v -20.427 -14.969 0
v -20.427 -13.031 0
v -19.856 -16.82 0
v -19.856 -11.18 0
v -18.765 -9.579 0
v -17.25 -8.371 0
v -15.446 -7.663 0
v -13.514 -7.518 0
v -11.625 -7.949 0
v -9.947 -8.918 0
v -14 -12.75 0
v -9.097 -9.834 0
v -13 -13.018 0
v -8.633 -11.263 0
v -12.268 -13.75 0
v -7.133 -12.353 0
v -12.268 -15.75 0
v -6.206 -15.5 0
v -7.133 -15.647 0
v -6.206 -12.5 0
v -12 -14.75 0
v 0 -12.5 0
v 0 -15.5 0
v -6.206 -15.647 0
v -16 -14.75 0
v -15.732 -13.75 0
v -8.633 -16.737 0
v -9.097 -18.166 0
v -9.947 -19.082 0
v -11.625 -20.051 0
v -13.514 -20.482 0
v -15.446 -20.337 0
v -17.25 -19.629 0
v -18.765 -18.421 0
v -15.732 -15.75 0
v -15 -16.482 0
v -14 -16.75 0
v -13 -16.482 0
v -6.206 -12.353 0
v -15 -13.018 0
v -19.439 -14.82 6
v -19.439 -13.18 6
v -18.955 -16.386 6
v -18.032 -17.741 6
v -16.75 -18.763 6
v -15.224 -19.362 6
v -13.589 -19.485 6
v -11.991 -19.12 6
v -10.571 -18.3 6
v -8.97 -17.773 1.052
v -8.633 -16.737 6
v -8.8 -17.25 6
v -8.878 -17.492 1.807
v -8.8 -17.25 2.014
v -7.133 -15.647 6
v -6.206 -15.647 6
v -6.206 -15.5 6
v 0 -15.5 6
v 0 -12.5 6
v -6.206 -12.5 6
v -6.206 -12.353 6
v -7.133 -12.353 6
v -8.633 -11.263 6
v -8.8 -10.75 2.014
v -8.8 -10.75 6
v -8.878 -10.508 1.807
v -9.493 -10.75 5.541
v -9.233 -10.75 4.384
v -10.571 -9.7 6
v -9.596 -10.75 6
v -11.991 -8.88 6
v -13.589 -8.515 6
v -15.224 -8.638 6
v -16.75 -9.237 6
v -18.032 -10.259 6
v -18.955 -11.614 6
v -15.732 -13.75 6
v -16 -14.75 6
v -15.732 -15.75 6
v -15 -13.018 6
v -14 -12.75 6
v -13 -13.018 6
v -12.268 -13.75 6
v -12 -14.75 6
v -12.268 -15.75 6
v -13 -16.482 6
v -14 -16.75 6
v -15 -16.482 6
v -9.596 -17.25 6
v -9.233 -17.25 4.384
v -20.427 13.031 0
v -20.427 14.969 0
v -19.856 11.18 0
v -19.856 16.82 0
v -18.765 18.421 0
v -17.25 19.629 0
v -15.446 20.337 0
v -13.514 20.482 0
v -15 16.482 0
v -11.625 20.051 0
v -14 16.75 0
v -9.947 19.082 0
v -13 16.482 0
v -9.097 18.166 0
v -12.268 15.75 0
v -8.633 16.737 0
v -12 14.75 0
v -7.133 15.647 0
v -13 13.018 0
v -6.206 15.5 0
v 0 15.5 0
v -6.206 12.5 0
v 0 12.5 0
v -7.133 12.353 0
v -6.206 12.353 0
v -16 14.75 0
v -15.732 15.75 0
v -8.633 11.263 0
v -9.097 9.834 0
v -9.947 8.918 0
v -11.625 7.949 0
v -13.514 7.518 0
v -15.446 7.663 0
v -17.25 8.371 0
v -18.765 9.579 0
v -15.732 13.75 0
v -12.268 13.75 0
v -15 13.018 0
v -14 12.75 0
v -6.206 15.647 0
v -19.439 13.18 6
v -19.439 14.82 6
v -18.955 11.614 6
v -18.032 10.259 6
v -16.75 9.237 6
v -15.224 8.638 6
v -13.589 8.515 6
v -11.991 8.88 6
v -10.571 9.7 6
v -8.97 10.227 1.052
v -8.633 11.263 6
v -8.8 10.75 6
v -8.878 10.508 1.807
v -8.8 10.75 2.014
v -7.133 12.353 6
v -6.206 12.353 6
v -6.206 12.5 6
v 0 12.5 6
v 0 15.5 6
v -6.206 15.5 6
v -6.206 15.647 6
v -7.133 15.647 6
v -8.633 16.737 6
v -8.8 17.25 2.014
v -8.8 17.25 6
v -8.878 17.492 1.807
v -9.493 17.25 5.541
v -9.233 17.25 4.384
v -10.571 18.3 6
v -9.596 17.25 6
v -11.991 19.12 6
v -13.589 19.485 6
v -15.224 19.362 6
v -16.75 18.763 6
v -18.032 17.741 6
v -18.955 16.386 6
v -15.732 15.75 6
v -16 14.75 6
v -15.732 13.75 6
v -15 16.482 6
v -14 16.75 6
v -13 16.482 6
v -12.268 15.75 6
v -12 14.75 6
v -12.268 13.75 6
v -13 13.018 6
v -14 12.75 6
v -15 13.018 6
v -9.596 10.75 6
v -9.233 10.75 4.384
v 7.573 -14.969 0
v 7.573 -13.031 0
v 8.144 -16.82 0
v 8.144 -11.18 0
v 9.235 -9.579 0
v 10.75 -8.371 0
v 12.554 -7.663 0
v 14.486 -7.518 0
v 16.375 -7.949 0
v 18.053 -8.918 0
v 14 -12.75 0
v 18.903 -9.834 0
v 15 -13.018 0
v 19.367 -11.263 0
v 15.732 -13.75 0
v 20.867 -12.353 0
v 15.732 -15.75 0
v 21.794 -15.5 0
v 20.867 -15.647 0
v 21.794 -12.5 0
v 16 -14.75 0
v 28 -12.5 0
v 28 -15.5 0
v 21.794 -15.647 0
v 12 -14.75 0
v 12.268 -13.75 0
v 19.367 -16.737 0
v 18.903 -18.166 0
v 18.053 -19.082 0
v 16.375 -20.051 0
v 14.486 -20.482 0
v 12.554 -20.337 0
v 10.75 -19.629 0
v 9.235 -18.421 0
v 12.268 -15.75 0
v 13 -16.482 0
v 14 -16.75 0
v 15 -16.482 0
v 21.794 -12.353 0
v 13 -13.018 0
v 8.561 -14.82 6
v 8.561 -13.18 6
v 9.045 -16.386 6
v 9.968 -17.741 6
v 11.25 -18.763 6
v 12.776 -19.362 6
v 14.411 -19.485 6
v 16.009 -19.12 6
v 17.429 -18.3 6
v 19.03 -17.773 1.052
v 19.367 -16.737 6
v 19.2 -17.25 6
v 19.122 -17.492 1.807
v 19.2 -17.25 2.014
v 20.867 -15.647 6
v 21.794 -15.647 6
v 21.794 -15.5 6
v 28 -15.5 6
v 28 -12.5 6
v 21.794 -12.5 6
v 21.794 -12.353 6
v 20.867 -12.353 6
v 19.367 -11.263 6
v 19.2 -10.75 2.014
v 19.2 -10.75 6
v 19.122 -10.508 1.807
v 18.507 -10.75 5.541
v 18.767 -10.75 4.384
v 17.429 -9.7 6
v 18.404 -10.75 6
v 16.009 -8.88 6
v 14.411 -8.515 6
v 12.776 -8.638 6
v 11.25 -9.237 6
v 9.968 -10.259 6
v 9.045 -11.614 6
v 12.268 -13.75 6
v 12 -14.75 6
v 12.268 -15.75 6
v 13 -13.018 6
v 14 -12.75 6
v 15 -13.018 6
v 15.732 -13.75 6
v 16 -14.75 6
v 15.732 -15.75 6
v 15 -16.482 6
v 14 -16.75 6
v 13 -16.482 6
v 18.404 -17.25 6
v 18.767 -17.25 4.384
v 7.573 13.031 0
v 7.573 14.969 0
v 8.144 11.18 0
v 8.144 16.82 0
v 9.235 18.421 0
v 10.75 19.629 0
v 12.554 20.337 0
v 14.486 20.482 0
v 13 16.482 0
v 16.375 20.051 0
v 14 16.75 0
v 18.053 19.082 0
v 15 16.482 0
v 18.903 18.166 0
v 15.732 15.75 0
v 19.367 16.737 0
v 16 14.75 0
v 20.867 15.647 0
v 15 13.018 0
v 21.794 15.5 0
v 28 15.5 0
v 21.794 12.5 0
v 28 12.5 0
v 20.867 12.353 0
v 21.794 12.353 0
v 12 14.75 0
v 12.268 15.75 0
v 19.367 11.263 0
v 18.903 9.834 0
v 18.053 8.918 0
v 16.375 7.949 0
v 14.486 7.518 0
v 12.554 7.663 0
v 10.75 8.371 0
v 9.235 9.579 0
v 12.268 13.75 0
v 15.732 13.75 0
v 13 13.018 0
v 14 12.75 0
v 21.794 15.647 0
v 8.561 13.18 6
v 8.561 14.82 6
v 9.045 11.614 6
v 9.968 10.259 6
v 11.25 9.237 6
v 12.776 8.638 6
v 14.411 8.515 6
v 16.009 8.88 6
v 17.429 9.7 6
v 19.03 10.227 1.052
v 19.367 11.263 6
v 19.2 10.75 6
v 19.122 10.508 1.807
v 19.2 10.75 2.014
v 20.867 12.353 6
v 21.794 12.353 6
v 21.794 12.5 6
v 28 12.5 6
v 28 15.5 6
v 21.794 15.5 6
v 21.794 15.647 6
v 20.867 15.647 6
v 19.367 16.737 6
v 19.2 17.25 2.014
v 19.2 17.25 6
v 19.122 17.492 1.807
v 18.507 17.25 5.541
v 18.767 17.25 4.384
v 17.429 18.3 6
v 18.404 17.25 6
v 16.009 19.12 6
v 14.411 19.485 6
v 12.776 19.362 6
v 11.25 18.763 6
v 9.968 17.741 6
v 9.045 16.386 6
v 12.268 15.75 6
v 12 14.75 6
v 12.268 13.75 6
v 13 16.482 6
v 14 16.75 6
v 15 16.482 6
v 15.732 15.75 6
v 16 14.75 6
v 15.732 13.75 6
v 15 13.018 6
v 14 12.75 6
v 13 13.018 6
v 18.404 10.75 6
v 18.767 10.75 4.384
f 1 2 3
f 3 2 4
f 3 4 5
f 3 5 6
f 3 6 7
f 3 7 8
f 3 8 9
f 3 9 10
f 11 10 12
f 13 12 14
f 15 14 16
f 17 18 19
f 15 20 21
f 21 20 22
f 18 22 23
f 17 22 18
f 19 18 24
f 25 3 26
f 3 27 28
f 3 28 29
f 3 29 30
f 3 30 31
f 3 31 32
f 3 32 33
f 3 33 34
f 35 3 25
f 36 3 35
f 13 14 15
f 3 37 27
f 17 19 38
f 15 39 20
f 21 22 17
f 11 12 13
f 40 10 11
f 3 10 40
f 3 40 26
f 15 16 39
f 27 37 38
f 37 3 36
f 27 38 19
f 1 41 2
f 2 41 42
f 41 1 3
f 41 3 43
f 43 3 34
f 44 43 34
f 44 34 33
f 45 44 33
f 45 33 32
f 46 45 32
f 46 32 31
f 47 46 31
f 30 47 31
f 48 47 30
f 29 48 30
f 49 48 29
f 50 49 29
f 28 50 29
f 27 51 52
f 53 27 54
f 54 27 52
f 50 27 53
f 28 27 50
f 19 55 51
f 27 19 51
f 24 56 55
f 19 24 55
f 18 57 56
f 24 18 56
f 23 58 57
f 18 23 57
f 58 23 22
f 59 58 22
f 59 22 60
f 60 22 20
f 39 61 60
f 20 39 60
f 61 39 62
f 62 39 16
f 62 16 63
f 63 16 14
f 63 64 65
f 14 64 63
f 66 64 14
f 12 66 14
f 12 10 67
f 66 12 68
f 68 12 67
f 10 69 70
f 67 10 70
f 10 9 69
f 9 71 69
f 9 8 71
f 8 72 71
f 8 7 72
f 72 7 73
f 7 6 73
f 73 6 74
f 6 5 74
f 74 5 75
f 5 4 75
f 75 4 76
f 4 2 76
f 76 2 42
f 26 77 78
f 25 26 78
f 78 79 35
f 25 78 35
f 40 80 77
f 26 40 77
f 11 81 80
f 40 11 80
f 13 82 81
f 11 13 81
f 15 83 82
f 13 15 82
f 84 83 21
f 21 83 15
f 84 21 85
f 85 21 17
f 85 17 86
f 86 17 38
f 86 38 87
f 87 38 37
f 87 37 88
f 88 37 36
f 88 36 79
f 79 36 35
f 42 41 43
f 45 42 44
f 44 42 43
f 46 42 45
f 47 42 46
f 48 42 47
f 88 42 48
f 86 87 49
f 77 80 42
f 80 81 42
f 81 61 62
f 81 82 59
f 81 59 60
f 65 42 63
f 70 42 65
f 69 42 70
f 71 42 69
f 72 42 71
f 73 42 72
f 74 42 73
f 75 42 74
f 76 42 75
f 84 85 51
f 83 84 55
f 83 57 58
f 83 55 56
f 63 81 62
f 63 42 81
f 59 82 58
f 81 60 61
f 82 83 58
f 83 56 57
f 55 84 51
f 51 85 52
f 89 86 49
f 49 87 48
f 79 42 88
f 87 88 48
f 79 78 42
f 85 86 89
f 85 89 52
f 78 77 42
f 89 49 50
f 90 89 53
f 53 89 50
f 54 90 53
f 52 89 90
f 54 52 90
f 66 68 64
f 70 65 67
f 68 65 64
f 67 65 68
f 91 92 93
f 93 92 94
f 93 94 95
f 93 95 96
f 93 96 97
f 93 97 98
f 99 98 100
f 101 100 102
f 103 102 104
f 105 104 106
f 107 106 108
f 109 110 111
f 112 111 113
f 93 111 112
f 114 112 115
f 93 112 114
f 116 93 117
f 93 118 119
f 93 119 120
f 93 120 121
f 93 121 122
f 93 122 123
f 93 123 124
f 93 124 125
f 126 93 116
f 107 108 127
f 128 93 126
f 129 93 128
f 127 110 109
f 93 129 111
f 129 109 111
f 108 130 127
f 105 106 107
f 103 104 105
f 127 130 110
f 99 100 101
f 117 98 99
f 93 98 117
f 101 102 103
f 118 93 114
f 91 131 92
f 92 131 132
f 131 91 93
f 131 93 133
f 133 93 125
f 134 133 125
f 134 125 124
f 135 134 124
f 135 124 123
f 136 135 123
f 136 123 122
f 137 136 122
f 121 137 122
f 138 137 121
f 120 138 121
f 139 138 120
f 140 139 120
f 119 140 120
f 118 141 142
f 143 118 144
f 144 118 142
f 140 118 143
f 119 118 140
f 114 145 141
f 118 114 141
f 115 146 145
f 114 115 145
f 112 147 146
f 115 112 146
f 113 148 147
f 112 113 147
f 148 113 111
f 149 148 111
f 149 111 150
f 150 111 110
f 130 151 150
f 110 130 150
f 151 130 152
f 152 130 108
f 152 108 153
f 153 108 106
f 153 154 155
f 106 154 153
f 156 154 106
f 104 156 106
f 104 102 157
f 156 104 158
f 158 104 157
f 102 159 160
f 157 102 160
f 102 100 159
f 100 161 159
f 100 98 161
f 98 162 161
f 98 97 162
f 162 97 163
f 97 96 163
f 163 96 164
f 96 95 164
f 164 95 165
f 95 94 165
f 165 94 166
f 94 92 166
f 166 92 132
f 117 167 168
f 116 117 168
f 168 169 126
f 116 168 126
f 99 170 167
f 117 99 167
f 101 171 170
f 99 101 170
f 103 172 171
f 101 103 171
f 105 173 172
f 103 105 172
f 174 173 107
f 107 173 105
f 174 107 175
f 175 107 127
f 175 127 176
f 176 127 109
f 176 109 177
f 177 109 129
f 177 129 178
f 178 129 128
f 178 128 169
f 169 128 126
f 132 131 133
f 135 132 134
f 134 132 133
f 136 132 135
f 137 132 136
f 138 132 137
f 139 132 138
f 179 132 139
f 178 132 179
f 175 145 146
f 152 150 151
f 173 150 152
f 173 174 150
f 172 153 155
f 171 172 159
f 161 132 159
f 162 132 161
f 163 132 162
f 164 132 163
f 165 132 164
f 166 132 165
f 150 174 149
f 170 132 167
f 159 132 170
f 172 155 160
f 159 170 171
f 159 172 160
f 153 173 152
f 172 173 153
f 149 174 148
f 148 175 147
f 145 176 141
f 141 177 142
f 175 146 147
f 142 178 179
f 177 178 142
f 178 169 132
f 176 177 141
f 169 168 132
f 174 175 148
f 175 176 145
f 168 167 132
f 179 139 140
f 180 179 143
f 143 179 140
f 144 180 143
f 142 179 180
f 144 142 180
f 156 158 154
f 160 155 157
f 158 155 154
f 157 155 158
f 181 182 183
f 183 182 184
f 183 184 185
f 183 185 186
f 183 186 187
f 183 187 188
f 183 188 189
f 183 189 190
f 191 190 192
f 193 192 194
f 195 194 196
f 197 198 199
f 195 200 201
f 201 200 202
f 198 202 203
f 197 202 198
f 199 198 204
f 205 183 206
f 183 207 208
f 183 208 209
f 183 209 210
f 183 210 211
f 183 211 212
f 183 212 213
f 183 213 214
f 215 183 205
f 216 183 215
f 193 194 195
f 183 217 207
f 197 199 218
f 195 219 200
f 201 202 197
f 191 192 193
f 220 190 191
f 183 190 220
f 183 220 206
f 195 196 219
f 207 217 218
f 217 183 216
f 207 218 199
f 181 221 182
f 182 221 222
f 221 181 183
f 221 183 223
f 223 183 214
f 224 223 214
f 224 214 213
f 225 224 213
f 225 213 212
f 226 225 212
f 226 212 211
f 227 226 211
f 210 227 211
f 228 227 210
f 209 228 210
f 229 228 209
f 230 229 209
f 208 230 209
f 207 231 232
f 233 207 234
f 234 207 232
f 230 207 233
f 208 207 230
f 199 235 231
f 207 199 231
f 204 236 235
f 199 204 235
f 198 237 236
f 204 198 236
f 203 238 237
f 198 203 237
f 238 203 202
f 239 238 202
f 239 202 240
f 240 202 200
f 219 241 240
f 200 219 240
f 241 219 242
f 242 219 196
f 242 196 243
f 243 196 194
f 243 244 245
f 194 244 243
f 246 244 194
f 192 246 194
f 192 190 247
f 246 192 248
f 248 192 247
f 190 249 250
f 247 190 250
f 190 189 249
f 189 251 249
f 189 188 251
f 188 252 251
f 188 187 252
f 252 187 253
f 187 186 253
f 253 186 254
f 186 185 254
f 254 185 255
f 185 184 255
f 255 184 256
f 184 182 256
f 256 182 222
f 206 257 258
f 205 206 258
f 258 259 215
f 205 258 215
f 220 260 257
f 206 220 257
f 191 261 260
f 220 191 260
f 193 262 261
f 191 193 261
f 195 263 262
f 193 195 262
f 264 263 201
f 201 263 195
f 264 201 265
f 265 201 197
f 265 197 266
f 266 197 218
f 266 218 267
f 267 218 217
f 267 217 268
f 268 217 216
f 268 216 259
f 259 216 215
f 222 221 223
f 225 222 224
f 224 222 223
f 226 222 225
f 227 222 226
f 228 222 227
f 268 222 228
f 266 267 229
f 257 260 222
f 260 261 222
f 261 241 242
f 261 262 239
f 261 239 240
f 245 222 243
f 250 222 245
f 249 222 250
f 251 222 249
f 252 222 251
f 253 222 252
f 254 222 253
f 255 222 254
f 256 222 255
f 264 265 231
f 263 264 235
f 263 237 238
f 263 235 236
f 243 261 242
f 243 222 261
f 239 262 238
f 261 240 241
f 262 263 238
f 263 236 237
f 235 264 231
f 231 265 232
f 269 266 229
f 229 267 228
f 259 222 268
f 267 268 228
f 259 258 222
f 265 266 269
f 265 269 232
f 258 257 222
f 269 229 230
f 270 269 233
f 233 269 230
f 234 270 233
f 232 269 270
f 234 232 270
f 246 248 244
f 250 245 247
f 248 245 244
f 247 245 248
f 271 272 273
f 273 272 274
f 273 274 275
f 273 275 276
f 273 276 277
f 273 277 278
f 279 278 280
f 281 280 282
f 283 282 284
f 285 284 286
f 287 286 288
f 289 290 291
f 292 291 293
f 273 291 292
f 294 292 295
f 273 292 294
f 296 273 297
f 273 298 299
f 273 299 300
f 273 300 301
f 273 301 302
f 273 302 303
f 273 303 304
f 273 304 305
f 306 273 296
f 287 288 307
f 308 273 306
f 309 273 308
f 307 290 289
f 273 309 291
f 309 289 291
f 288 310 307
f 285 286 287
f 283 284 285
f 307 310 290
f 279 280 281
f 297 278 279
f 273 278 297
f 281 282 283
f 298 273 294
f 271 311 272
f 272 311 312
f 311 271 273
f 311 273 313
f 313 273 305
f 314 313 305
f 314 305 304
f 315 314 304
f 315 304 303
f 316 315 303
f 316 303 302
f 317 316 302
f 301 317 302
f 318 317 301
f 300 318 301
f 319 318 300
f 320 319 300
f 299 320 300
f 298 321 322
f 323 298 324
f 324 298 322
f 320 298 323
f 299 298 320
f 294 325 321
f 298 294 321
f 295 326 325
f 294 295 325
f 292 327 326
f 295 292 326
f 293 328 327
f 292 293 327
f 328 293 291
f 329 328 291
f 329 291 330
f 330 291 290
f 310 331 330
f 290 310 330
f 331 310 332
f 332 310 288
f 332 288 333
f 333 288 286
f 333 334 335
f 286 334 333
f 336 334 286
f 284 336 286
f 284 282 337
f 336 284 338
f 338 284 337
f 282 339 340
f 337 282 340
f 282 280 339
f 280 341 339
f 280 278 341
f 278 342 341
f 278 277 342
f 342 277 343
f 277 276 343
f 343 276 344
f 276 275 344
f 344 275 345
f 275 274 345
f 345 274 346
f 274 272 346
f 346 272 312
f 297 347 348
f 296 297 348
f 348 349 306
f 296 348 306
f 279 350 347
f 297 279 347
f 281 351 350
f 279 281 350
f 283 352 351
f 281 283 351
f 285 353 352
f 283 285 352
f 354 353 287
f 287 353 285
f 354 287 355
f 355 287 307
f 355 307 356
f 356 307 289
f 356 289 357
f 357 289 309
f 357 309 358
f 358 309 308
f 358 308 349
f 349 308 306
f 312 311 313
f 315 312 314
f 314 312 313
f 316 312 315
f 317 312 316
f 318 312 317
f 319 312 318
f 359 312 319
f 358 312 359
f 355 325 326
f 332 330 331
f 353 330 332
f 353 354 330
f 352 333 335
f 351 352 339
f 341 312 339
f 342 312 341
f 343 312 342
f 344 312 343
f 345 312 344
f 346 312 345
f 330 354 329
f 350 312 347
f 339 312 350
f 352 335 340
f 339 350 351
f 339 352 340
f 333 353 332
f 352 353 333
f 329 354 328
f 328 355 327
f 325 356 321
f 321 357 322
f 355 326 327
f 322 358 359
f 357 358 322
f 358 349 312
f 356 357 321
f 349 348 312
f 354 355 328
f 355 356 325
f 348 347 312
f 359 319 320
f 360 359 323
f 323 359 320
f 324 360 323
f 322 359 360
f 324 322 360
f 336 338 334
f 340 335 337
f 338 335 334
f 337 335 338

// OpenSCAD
// od1 = Outside diameter at base
// od2 = Outside diameter at top
// id = inside (hole) diameter
// rt = retainer thickness
// ho = hole offset
// ll = lever length
// lt = lever thickness (width)
// d  = delta
module PrintBedRetainer(od1, od2, id, rt, ho, ll, lt, d)
{
    s30 = sin(30);
    c30 = cos(30);
    lfr = (od1+od2)/4-lt;     // Lever fillet radius      
    lfp = (od1+od2)/4+lfr;    // Lever fillet pitch radius
    intersection()
    {
        difference()
        {
            union()
            {
                cylinder(r1=od1/2, r2=od2/2, h=rt);
                translate([0,-od1/4,0]) cube(size=[ll, od1/2, rt]);
            }
                translate([0,ho,-d]) cylinder(r=id/2, h=rt+2*d, $fn=12);    
                translate([c30*lfp,-s30*lfp,-d])
            {   
                cylinder(r=lfr, h=rt+2*d);
                translate([0,-lfr,0]) cube(size=[ll, lfr*2, rt+2*d] );
            }
            translate([c30*lfp,+s30*lfp,-d])
            {   
                cylinder(r=lfr, h=rt+2*d);
                translate([0,-lfr,0]) cube(size=[ll, lfr*2, rt+2*d] );
            }
        }
    }
}

// Actual objects here

ll = 14;
for (xo = [-ll, ll])
{
    for ( yo = [-ll, ll])
    {
        translate([xo, yo, 0])
        //               od1 od2 id rt  ho   ll  lt d
        PrintBedRetainer(13,  11, 4, 6, 0.75*sign(yo), ll, 3, 1);
    }
}
